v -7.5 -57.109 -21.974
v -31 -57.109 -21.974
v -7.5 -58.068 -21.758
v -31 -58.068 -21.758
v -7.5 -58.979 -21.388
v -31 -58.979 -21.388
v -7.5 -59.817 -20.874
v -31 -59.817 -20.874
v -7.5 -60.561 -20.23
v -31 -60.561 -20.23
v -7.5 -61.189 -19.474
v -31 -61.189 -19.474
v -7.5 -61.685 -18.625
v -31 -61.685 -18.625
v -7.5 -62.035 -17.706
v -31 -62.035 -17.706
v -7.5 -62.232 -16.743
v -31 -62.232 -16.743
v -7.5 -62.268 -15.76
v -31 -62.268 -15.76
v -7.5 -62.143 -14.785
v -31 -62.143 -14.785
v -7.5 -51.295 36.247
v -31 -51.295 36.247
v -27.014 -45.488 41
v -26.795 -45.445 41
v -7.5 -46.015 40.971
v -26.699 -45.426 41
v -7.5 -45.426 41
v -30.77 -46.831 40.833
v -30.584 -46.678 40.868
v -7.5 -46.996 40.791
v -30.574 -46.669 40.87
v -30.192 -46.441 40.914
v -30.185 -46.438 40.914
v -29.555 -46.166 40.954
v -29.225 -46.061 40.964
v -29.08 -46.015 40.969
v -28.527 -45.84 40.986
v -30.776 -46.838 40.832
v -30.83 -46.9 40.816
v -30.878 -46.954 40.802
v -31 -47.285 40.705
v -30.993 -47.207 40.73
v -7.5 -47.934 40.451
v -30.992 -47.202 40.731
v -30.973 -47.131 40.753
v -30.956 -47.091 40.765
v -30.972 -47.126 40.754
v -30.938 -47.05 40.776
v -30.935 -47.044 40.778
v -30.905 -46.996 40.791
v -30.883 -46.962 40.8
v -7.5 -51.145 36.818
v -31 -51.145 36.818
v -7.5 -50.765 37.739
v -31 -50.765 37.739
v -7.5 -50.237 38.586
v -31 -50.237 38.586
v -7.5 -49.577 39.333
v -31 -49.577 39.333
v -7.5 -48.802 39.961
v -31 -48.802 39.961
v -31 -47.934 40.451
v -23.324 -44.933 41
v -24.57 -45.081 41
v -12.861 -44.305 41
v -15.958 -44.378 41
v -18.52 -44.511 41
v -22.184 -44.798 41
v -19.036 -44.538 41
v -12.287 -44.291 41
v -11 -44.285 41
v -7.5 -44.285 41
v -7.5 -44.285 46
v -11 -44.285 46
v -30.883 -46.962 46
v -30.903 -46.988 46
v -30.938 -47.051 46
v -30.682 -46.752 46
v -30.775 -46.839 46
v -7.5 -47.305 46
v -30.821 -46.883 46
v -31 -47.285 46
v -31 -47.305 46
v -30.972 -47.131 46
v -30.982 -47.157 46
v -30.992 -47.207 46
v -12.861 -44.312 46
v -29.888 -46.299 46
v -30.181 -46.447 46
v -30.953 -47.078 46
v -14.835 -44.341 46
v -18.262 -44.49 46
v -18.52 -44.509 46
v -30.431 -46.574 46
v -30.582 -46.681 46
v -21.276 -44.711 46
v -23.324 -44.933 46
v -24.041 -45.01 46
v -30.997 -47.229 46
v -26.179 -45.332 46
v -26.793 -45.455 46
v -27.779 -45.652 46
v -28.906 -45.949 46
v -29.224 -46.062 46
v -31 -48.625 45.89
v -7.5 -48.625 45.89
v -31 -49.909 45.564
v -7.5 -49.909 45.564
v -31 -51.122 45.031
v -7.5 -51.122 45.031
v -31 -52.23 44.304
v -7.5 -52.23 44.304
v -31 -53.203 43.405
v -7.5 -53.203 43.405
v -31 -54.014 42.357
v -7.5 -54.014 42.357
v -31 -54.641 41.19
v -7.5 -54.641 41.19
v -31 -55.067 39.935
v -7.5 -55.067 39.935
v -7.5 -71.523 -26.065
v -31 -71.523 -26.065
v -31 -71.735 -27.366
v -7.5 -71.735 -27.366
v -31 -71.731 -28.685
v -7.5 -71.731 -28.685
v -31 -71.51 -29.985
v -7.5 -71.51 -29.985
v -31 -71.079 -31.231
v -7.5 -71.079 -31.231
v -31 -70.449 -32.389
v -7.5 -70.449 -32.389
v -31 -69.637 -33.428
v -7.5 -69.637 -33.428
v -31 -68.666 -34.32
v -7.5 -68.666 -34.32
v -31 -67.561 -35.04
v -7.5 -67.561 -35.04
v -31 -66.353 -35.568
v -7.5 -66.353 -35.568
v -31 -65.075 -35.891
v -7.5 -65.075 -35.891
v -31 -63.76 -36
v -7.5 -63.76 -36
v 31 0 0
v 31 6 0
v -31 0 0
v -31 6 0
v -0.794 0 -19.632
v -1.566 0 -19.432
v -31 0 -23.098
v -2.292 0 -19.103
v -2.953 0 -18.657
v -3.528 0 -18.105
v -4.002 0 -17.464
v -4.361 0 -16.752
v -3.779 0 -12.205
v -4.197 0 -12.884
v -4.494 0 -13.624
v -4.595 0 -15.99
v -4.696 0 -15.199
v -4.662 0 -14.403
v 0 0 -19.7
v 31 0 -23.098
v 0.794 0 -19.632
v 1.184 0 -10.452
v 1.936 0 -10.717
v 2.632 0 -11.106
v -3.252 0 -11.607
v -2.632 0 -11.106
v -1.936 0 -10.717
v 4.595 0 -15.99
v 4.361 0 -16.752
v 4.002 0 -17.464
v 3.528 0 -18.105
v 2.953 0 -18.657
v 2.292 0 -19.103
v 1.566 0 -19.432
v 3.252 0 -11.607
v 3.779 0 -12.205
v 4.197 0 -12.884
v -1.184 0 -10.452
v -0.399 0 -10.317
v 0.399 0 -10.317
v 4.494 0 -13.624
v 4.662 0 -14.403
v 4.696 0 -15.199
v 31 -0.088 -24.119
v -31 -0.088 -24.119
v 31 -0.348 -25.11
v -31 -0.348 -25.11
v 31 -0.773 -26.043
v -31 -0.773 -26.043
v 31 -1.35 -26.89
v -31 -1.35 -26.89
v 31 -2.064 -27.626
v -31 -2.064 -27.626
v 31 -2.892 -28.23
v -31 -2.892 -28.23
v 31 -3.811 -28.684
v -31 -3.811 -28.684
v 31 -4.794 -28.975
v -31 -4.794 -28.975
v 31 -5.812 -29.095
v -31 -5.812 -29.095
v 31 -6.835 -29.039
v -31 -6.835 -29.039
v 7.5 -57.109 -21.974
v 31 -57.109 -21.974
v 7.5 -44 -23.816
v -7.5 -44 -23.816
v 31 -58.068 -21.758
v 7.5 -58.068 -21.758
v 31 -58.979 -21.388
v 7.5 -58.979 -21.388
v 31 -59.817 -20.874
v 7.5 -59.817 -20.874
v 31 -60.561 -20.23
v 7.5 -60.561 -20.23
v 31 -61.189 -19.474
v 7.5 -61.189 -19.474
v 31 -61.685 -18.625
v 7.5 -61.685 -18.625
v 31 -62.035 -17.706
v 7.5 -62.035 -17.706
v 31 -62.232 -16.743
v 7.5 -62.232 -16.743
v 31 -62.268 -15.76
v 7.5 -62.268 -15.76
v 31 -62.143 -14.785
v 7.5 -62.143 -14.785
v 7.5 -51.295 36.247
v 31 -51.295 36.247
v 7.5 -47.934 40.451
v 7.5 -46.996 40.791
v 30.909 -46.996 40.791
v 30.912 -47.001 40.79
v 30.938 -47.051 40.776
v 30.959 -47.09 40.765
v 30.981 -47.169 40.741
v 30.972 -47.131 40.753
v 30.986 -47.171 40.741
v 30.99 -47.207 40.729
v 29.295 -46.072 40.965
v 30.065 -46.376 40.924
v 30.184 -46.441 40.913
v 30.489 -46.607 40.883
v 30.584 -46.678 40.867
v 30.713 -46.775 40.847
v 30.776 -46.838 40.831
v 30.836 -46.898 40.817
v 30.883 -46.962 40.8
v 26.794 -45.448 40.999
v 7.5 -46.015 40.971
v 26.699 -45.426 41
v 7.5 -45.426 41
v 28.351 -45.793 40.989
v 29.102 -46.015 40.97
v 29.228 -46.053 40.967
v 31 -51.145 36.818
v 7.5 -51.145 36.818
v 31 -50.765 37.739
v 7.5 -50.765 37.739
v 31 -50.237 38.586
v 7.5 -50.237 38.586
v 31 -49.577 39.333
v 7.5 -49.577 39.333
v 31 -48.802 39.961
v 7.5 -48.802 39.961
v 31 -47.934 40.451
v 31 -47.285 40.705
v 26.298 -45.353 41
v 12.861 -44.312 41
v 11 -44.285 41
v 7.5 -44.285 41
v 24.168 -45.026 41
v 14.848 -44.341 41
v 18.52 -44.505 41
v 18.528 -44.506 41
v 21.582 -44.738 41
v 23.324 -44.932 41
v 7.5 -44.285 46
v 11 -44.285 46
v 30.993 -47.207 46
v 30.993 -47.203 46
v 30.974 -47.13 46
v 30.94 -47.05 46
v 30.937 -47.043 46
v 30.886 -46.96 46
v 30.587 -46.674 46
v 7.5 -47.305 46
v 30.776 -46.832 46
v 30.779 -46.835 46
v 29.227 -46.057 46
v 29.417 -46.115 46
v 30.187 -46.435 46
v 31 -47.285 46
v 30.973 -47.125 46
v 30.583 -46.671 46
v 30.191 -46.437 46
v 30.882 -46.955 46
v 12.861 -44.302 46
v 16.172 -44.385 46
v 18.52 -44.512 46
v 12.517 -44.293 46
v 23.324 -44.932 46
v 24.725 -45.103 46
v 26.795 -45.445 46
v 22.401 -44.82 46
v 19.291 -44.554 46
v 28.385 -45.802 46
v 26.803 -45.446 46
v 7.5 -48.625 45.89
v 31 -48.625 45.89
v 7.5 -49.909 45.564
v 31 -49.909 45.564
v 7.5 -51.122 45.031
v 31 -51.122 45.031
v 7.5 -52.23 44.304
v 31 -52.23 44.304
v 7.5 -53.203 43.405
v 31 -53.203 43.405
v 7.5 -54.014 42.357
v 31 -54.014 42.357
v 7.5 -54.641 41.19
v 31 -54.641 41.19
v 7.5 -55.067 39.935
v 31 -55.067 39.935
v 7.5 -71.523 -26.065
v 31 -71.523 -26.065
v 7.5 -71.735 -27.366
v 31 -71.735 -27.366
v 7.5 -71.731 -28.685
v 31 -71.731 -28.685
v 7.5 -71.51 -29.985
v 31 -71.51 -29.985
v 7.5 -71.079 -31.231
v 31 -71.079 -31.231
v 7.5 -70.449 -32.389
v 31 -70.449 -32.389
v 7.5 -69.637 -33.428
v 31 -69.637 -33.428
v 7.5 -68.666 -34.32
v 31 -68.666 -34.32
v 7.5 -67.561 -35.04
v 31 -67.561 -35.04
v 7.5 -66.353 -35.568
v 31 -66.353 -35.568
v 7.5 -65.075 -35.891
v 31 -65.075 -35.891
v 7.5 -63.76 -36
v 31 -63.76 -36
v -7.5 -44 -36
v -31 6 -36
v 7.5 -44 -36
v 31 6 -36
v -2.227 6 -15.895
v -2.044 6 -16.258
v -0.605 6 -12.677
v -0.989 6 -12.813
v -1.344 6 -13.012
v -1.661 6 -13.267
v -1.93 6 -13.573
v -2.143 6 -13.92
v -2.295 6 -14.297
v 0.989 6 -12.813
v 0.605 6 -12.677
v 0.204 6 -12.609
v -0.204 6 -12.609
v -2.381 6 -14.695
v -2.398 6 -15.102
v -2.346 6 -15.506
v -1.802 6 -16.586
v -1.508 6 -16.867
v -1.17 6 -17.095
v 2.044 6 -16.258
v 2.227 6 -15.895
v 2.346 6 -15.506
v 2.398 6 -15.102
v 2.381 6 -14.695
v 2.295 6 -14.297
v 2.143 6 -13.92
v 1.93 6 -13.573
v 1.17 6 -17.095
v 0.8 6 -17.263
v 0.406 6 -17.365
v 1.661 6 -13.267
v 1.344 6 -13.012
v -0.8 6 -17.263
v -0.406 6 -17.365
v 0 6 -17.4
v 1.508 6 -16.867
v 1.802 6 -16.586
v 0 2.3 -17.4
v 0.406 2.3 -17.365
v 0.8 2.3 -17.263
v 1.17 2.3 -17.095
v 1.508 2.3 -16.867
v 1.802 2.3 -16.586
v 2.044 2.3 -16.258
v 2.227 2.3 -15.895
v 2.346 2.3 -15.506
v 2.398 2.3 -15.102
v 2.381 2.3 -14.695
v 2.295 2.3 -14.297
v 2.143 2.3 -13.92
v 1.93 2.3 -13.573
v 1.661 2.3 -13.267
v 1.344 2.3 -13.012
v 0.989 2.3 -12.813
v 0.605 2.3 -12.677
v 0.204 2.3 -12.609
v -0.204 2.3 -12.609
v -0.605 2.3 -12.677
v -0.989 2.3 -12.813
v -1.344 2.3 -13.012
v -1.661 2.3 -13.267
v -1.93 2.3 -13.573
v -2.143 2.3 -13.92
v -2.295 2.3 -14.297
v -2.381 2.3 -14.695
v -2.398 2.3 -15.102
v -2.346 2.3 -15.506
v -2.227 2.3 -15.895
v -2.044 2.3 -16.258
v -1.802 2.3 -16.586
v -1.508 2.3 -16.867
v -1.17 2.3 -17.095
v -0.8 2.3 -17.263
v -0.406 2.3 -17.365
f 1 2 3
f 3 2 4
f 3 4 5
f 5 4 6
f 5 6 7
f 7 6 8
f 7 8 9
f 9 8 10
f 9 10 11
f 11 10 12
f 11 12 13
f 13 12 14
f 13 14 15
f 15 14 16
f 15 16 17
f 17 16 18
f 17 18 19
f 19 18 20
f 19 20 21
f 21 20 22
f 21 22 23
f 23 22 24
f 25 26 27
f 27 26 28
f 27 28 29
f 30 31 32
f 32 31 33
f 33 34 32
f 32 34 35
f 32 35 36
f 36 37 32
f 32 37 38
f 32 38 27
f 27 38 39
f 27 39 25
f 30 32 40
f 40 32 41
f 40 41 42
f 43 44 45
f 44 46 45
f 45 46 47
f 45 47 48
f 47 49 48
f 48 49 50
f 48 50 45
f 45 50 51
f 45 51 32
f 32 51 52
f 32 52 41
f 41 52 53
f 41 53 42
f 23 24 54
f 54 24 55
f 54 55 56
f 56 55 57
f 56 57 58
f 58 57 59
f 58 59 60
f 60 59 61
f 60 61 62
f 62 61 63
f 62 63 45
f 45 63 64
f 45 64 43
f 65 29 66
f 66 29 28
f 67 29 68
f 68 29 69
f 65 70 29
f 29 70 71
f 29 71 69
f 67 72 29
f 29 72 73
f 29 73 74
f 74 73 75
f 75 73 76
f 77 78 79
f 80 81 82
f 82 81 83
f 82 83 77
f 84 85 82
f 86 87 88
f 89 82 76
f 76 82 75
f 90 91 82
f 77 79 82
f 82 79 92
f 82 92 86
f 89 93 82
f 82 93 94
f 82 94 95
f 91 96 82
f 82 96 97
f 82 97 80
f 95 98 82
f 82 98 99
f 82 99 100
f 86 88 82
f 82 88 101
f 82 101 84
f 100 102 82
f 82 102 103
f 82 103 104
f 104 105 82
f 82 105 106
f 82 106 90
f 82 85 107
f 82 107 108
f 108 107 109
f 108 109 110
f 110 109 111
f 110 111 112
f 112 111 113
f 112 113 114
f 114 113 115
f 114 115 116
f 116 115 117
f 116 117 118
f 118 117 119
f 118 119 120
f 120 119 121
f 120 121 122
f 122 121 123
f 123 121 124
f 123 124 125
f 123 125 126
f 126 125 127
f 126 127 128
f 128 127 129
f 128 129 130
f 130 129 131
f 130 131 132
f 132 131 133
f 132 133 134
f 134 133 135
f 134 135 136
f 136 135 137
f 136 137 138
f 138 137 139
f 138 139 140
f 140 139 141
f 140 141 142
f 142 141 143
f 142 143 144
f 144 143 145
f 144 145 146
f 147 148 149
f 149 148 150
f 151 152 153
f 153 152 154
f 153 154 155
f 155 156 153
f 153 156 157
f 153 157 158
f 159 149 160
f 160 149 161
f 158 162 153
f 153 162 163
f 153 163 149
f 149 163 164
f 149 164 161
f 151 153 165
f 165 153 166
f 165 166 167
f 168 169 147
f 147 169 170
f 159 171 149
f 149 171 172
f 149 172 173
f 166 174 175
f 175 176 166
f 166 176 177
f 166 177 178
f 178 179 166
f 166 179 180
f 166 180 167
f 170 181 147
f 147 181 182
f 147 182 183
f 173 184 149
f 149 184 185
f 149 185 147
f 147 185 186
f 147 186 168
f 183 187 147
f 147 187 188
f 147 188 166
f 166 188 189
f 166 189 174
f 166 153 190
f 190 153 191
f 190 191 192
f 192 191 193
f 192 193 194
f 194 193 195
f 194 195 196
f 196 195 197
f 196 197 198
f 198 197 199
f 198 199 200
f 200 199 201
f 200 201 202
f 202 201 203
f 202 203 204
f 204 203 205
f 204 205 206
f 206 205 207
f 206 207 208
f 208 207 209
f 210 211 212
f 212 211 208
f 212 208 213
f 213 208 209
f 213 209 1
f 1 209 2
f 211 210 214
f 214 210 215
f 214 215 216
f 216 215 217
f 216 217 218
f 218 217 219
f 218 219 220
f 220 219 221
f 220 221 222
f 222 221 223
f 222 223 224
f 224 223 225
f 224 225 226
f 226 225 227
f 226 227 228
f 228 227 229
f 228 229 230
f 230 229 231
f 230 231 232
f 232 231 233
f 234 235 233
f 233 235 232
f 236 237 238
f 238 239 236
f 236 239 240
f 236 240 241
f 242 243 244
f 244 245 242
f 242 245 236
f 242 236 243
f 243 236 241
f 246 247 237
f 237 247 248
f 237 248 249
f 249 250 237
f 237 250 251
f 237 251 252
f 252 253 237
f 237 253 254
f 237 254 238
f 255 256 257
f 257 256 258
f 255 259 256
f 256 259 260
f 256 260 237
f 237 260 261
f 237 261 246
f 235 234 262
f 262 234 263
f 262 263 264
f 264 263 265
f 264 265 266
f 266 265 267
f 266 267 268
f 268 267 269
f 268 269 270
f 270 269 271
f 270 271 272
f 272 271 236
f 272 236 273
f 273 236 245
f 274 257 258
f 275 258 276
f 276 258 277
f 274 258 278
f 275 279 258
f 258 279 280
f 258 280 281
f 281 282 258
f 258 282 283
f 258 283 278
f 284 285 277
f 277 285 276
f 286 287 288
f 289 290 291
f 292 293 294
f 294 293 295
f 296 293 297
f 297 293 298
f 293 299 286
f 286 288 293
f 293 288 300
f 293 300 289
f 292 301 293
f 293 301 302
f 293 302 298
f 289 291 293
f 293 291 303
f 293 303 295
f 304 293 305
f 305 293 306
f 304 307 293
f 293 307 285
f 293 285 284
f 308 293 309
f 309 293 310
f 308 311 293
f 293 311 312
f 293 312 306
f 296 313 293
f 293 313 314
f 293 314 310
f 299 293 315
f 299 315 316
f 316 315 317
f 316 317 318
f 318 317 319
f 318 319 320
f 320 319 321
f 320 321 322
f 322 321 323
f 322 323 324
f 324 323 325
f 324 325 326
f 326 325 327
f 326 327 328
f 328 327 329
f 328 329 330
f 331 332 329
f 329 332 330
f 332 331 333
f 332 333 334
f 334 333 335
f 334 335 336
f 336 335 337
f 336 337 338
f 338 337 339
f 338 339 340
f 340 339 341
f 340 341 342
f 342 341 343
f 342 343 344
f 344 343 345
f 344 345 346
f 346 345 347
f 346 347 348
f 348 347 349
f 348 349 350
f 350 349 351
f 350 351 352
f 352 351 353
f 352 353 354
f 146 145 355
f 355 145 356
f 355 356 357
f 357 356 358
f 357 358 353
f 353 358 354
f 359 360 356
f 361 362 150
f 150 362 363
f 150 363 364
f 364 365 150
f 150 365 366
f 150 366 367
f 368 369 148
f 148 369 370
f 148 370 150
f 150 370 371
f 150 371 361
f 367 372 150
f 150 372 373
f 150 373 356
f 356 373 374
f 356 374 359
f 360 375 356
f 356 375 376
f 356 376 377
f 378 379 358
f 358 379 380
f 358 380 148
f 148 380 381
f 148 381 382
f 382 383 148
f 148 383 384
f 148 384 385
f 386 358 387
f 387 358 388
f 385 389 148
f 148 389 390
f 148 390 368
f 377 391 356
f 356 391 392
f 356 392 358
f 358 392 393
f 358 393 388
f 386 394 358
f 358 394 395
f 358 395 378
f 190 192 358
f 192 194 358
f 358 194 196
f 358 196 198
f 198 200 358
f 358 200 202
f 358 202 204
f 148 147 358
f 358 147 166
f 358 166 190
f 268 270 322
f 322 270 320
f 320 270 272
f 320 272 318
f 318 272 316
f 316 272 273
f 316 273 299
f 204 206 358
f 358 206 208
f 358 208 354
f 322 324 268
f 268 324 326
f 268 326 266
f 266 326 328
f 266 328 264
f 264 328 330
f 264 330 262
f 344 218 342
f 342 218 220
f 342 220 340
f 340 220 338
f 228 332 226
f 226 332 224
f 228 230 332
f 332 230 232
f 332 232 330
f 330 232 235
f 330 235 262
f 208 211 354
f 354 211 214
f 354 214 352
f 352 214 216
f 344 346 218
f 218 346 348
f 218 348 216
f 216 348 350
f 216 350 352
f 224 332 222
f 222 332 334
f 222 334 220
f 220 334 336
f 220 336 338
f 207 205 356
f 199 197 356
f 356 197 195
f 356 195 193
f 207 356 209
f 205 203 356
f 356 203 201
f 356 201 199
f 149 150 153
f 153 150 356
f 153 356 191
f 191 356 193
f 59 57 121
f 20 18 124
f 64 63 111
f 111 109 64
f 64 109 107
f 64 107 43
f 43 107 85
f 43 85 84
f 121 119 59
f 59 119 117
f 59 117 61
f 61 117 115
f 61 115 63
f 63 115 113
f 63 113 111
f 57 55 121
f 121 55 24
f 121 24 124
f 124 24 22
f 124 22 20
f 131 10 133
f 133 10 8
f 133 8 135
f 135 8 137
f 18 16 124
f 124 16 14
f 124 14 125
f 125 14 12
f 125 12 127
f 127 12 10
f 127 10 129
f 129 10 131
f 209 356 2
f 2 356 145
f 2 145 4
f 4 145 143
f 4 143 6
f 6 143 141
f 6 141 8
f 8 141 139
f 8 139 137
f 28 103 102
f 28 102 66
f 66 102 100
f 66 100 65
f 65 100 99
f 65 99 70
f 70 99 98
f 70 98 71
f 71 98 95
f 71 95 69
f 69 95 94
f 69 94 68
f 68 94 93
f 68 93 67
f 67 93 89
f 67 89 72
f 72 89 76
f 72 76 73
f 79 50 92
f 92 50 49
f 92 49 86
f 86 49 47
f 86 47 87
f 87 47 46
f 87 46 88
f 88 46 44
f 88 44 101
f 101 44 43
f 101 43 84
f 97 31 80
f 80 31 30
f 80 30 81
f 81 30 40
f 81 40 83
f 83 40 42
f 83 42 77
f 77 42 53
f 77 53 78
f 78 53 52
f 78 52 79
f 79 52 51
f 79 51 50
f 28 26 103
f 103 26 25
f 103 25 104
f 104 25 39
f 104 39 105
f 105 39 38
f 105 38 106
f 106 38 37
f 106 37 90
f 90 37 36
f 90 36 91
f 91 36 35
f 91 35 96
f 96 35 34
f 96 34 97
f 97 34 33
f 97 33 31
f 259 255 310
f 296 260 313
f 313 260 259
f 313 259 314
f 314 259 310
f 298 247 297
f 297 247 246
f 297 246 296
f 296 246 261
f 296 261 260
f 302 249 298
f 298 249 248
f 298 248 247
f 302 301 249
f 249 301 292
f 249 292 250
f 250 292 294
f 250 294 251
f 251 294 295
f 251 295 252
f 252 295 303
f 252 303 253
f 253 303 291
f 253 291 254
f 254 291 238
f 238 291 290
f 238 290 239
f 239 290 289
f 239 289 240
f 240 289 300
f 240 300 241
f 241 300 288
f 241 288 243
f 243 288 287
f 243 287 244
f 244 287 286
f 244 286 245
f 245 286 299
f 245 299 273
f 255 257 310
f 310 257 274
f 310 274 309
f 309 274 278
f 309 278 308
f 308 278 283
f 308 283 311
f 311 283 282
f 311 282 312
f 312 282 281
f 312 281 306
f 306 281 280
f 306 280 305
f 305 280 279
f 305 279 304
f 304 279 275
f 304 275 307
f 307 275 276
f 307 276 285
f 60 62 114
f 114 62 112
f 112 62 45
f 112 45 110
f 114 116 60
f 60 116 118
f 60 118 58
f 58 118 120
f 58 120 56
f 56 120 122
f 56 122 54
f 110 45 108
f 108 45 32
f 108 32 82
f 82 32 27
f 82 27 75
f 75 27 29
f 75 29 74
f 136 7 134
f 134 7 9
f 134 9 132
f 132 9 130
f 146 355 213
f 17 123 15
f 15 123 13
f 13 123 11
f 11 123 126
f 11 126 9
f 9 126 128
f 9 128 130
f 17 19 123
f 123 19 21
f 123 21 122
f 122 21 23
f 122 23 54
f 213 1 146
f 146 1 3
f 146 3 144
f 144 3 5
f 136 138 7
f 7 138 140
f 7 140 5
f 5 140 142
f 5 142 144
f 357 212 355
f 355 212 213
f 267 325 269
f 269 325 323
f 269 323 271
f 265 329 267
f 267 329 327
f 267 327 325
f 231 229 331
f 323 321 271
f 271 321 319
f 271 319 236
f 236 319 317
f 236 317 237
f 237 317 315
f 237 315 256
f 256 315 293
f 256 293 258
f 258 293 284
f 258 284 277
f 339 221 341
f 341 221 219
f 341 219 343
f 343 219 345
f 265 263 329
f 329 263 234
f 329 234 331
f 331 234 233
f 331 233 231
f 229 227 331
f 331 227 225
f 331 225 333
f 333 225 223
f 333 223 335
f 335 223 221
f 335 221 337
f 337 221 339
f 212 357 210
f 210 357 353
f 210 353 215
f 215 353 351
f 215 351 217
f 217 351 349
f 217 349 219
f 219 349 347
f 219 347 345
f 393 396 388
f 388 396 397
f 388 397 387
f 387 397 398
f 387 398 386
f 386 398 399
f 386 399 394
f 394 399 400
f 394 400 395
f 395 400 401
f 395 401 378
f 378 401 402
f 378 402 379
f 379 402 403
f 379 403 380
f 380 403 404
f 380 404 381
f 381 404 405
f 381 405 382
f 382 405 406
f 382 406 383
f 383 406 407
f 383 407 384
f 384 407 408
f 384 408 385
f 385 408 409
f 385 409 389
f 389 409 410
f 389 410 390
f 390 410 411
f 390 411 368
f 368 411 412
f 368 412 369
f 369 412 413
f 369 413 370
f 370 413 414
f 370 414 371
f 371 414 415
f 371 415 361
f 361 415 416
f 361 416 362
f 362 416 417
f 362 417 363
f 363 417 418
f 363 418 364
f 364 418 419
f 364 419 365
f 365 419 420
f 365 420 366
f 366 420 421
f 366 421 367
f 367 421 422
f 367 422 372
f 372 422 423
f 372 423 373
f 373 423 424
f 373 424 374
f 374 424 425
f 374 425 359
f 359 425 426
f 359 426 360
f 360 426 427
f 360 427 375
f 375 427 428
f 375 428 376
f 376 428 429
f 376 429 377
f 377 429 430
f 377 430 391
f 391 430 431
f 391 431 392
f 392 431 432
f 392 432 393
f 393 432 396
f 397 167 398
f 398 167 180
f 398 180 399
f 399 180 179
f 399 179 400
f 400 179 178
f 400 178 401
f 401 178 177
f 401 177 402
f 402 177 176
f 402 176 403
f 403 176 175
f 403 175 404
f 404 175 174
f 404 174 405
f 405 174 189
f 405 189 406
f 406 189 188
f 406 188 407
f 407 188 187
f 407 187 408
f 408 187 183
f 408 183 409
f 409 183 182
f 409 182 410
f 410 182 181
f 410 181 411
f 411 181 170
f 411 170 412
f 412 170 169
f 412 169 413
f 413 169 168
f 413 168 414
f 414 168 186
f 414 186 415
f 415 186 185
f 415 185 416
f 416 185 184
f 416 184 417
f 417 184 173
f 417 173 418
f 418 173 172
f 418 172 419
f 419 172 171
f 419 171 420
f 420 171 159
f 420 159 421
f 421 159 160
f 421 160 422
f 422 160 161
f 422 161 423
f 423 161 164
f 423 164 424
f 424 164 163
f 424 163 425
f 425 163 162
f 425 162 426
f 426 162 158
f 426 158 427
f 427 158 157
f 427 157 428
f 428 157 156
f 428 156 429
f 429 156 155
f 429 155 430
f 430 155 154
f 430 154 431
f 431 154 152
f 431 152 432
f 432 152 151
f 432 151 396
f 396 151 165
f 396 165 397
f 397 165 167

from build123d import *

# Parameters (mm, degrees)
BOSS_EXTRUDE1_DEPTH                                 = 31
FILLET1_SIZE                                        = 20
FILLET1_SIZE_2                                      = 3
FILLET2_SIZE                                        = 3
FILLET2_SIZE_2                                      = 20
CUT_EXTRUDE1_DEPTH                                  = 91.700411417
CUT_EXTRUDE1_DEPTH_BACK                             = 91.700411417
SKETCH2_W                                           = 15
SKETCH2_H                                           = 30
CSK_FOR_M4_COUNTERSUNK_FLAT_HEAD_SCREW1_D           = 4.8
CSK_FOR_M4_COUNTERSUNK_FLAT_HEAD_SCREW1_DEPTH       = 15.2
CSK_FOR_M4_COUNTERSUNK_FLAT_HEAD_SCREW1_CSINK_D     = 9.4
CSK_FOR_M4_COUNTERSUNK_FLAT_HEAD_SCREW1_CSINK_ANGLE = 90
CSK_FOR_M4_COUNTERSUNK_FLAT_HEAD_SCREW1_TIP         = 1.442065486


with BuildPart() as part:
    # Sketch1 → Boss-Extrude1 (new, symmetric)
    with BuildSketch(Plane(origin=(0, 0, 0), x_dir=(0, 0, -1), z_dir=(1, 0, 0))):
        with BuildLine():
            Line((0, 0), (23.097789557, 0))
            ThreePointArc((23.097789557, 0), (27.626047038, -2.063645826), (29.039397969, -6.835038606))
            Line((29.039397969, -6.835038606), (21.973887052, -57.10876106))
            ThreePointArc((21.973887052, -57.10876106), (19.473737257, -61.18863472), (14.784808494, -62.142608059))
            Line((14.784808494, -62.142608059), (-36.247470145, -51.295362377))
            ThreePointArc((-36.247470145, -51.295362377), (-39.662875769, -49.202399119), (-41, -45.426476772))
            Line((-41, -45.426476772), (-41, -44.285180972))
            Line((-41, -44.285180972), (-46, -44.285180972))
            Line((-46, -44.285180972), (-46, -47.304818755))
            ThreePointArc((-46, -47.304818755), (-44.304086029, -52.230110557), (-39.935375165, -55.067184565))
            Line((-39.935375165, -55.067184565), (26.064624835, -71.522832753))
            ThreePointArc((26.064624835, -71.522832753), (32.925291803, -70.064552971), (36, -63.760466942))
            Line((36, -63.760466942), (36, 6))
            Line((36, 6), (0, 6))
            Line((0, 6), (0, 0))
        make_face()
    extrude(amount=BOSS_EXTRUDE1_DEPTH, both=True)

    # Fillet1
    # an asymmetric fillet: 20, 3 mm, written as the material it takes off along each edge
    with BuildSketch(Plane(origin=(-31, -44.285180972, -9), x_dir=(1, 0, 0), z_dir=(0, 0, 1))) as fillet1_piece_1:
        with BuildLine():
            Bezier((FILLET1_SIZE, 0), (0, 0), (0, -FILLET1_SIZE_2), weights=[1, 0.707106781, 1])
            Line((0, -FILLET1_SIZE_2), (0, 0))
            Line((0, 0), (FILLET1_SIZE, 0))
        make_face()
    extrude(amount=105, mode=Mode.SUBTRACT)

    # Fillet2
    # an asymmetric fillet: 20, 3 mm, written as the material it takes off along each edge
    with BuildSketch(Plane(origin=(31, -44.285180972, -9), x_dir=(0, -1, 0), z_dir=(0, 0, 1))) as fillet2_piece_1:
        with BuildLine():
            Bezier((FILLET2_SIZE, 0), (0, 0), (0, -FILLET2_SIZE_2), weights=[1, 0.707106781, 1])
            Line((0, -FILLET2_SIZE_2), (0, 0))
            Line((0, 0), (FILLET2_SIZE, 0))
        make_face()
    extrude(amount=105, mode=Mode.SUBTRACT)

    # Sketch2 → Cut-Extrude1 (cut, two sides: drawn at the far end of the back side and taken through both)
    with BuildSketch(Plane.XY.offset(-CUT_EXTRUDE1_DEPTH_BACK)):
        with Locations((0, -59)):
            Rectangle(SKETCH2_W, SKETCH2_H)
    extrude(amount=CUT_EXTRUDE1_DEPTH + CUT_EXTRUDE1_DEPTH_BACK, mode=Mode.SUBTRACT)

    # CSK for M4 Countersunk Flat Head Screw1
    with Locations(Plane(origin=(0, 0, -15), x_dir=(0, 0, -1), z_dir=(0, -1, 0))):
        with Locations((0, 0)):
            CounterSinkHole(CSK_FOR_M4_COUNTERSUNK_FLAT_HEAD_SCREW1_D / 2, CSK_FOR_M4_COUNTERSUNK_FLAT_HEAD_SCREW1_CSINK_D / 2, depth=CSK_FOR_M4_COUNTERSUNK_FLAT_HEAD_SCREW1_DEPTH, counter_sink_angle=CSK_FOR_M4_COUNTERSUNK_FLAT_HEAD_SCREW1_CSINK_ANGLE)
            with Locations((0, 0, -(CSK_FOR_M4_COUNTERSUNK_FLAT_HEAD_SCREW1_DEPTH + CSK_FOR_M4_COUNTERSUNK_FLAT_HEAD_SCREW1_TIP / 2))):  # 118° drill point
                Cone(0, CSK_FOR_M4_COUNTERSUNK_FLAT_HEAD_SCREW1_D / 2, CSK_FOR_M4_COUNTERSUNK_FLAT_HEAD_SCREW1_TIP, mode=Mode.SUBTRACT)


solid = part.part
